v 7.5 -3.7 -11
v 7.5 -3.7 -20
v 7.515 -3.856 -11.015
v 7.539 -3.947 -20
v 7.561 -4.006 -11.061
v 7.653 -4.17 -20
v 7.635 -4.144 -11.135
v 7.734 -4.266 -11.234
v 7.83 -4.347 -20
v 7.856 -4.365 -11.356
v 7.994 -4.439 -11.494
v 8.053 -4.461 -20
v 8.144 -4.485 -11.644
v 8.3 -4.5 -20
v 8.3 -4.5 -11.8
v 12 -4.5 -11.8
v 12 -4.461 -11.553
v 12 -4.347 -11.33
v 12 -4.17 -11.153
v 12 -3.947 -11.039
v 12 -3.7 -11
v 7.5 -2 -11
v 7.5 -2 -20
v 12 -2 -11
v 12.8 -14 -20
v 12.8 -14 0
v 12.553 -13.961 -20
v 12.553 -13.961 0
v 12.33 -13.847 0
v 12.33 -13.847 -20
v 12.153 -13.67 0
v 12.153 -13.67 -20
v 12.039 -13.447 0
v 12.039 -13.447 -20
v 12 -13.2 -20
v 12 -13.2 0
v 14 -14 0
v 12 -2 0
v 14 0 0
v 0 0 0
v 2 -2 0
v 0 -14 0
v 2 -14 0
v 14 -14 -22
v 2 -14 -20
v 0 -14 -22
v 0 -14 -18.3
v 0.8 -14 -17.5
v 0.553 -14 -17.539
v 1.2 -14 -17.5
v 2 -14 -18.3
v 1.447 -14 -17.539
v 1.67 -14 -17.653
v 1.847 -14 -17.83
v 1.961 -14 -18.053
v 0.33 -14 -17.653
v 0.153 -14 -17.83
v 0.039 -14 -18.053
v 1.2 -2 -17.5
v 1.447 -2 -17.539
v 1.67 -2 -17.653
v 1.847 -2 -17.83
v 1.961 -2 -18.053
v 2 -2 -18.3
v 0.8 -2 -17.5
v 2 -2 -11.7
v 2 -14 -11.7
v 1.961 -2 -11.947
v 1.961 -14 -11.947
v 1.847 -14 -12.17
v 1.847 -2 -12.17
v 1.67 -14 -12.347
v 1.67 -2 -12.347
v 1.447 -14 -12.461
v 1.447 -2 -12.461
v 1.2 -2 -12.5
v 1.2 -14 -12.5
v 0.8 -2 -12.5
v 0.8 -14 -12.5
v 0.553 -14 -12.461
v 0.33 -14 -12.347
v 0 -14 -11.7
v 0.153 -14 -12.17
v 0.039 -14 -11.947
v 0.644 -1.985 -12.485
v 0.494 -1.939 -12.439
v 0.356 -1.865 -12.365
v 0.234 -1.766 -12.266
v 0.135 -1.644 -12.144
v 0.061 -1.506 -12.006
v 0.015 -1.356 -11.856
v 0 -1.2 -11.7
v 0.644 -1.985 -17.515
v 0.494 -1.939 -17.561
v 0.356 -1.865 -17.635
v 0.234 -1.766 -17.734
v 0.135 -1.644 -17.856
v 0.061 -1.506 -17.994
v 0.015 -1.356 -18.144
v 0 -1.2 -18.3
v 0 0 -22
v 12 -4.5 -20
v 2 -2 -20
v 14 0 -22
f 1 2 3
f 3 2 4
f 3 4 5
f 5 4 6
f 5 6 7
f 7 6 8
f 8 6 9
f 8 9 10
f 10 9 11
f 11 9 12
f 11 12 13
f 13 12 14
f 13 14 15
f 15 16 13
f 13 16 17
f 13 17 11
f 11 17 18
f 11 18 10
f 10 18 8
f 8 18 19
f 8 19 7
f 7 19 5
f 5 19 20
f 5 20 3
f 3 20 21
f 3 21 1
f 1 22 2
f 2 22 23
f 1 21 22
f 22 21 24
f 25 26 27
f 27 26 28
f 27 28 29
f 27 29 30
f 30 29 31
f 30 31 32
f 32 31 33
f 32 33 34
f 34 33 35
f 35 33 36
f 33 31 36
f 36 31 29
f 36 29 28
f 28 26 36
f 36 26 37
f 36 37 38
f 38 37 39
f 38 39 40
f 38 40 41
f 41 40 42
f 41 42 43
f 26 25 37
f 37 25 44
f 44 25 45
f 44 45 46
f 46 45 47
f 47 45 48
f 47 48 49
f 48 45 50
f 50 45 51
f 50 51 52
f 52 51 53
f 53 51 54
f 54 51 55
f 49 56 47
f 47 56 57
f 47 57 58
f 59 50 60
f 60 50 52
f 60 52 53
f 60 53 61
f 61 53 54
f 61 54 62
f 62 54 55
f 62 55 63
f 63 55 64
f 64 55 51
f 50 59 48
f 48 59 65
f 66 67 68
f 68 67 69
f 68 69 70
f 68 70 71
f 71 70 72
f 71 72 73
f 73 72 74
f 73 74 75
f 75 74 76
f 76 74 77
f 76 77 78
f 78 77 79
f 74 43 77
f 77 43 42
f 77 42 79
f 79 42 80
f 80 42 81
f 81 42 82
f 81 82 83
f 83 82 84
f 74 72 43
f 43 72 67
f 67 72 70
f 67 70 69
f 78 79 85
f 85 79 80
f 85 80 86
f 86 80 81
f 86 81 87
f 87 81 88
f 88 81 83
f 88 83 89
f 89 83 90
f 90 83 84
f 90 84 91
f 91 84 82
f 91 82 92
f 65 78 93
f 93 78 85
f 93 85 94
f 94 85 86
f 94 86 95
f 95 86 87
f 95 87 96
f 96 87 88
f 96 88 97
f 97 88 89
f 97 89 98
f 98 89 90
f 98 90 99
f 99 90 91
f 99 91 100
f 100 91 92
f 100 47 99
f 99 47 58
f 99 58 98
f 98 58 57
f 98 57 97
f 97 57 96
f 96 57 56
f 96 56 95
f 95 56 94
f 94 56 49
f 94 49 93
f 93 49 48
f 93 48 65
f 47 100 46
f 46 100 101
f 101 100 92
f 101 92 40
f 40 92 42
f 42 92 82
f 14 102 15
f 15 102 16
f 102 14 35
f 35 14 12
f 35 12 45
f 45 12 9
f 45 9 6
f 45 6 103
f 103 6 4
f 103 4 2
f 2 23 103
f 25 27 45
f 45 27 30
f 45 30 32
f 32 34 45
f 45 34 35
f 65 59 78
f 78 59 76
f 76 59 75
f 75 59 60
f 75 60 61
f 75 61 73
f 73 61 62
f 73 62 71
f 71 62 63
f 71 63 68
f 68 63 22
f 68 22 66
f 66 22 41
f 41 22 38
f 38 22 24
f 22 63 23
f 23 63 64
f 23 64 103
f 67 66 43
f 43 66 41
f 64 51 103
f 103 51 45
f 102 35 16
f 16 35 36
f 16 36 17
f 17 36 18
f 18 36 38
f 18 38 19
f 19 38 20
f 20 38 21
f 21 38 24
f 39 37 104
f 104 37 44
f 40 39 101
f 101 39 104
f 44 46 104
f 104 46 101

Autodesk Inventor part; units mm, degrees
ref_plane "YZ Plane" through (0, 0, 0) normal (1, 0, 0) x (0, 1, 0)
ref_plane "XZ Plane" through (0, 0, 0) normal (0, 1, 0) x (-1, 0, 0)
ref_plane "XY Plane" through (0, 0, 0) normal (0, 0, 1) x (1, 0, 0)
sketch "Sketch1" plane through (0, 0, 0) normal (0, 0, 1) x (1, 0, 0)
  line L0 (0, 0) -> (14, 0)
  line L1 (14, 0) -> (14, -14)
  line L2 (14, -14) -> (0, -14)
  line L3 (0, -14) -> (0, 0)
  dimension "d0" = 14
  dimension "d1" = 14
extrude "Extrusion1" add sketch "Sketch1" against normal blind 22
sketch "Sketch2" plane through (0, 0, 0) normal (0, 0, 1) x (1, 0, 0)
  line L0 (2, -2) -> (12, -2)
  line L1 (12, -2) -> (12, -22)
  line L2 (12, -22) -> (2, -22)
  line L3 (2, -22) -> (2, -2)
  point P0 (0, 0)
  dimension "d4" = 10
  dimension "d5" = 20
extrude "Extrusion2" cut sketch "Sketch2" against normal blind 20
sketch "Sketch8" plane through (0, -14, 0) normal (-1, 0, 0) x (0, 0, 1)
  point P0 (0, 14)
sketch "Sketch9" plane through (0, -14, 0) normal (-1, 0, 0) x (0, 0, 1)
  point P0 (0, 14)
sketch "Sketch11" plane through (0, -14, 0) normal (-1, 0, 0) x (0, 0, 1)
  point P0 (0, 14)
sketch "Sketch14" plane through (0, -14, 0) normal (-1, 0, 0) x (0, 0, 1)
  point P0 (0, 14)
sketch "Sketch15" plane through (0, -14, 0) normal (-1, 0, 0) x (0, 0, 1)
  point P0 (0, 14)
sketch "Sketch16" plane through (0, -14, 0) normal (-1, 0, 0) x (0, 0, 1)
  line L0 (-12.5, 12) -> (-17.5, 12)
  line L1 (-17.5, 12) -> (-17.5, 0)
  line L2 (-17.5, 0) -> (-12.5, 0)
  line L3 (-12.5, 0) -> (-12.5, 12)
  point P0 (0, 14)
  dimension "d30" = 5
  dimension "d31" = 12
extrude "Extrusion10" cut sketch "Sketch16" against normal blind 2
sketch "Sketch17" plane through (0, 0, -20) normal (0, 0, 1) x (1, 0, 0)
  line L0 (12, -2) -> (7.5, -2)
  line L1 (7.5, -2) -> (7.5, -4.5)
  line L2 (7.5, -4.5) -> (12, -4.5)
  line L3 (12, -4.5) -> (12, -2)
  point P0 (0, 0)
  dimension "d34" = 4.5
  dimension "d35" = 2.5
extrude "Extrusion11" add sketch "Sketch17" along normal blind 9
fillet "Fillet1" radius 0.8 8 edges at (0, -8, -12.5) (2, -8, -12.5) (0, -2, -15) (0, -8, -17.5) (2, -8, -17.5) (12, -14, -10) (7.5, -4.5, -15.5) (9.75, -4.5, -11)
properties part number "housing_v08"
